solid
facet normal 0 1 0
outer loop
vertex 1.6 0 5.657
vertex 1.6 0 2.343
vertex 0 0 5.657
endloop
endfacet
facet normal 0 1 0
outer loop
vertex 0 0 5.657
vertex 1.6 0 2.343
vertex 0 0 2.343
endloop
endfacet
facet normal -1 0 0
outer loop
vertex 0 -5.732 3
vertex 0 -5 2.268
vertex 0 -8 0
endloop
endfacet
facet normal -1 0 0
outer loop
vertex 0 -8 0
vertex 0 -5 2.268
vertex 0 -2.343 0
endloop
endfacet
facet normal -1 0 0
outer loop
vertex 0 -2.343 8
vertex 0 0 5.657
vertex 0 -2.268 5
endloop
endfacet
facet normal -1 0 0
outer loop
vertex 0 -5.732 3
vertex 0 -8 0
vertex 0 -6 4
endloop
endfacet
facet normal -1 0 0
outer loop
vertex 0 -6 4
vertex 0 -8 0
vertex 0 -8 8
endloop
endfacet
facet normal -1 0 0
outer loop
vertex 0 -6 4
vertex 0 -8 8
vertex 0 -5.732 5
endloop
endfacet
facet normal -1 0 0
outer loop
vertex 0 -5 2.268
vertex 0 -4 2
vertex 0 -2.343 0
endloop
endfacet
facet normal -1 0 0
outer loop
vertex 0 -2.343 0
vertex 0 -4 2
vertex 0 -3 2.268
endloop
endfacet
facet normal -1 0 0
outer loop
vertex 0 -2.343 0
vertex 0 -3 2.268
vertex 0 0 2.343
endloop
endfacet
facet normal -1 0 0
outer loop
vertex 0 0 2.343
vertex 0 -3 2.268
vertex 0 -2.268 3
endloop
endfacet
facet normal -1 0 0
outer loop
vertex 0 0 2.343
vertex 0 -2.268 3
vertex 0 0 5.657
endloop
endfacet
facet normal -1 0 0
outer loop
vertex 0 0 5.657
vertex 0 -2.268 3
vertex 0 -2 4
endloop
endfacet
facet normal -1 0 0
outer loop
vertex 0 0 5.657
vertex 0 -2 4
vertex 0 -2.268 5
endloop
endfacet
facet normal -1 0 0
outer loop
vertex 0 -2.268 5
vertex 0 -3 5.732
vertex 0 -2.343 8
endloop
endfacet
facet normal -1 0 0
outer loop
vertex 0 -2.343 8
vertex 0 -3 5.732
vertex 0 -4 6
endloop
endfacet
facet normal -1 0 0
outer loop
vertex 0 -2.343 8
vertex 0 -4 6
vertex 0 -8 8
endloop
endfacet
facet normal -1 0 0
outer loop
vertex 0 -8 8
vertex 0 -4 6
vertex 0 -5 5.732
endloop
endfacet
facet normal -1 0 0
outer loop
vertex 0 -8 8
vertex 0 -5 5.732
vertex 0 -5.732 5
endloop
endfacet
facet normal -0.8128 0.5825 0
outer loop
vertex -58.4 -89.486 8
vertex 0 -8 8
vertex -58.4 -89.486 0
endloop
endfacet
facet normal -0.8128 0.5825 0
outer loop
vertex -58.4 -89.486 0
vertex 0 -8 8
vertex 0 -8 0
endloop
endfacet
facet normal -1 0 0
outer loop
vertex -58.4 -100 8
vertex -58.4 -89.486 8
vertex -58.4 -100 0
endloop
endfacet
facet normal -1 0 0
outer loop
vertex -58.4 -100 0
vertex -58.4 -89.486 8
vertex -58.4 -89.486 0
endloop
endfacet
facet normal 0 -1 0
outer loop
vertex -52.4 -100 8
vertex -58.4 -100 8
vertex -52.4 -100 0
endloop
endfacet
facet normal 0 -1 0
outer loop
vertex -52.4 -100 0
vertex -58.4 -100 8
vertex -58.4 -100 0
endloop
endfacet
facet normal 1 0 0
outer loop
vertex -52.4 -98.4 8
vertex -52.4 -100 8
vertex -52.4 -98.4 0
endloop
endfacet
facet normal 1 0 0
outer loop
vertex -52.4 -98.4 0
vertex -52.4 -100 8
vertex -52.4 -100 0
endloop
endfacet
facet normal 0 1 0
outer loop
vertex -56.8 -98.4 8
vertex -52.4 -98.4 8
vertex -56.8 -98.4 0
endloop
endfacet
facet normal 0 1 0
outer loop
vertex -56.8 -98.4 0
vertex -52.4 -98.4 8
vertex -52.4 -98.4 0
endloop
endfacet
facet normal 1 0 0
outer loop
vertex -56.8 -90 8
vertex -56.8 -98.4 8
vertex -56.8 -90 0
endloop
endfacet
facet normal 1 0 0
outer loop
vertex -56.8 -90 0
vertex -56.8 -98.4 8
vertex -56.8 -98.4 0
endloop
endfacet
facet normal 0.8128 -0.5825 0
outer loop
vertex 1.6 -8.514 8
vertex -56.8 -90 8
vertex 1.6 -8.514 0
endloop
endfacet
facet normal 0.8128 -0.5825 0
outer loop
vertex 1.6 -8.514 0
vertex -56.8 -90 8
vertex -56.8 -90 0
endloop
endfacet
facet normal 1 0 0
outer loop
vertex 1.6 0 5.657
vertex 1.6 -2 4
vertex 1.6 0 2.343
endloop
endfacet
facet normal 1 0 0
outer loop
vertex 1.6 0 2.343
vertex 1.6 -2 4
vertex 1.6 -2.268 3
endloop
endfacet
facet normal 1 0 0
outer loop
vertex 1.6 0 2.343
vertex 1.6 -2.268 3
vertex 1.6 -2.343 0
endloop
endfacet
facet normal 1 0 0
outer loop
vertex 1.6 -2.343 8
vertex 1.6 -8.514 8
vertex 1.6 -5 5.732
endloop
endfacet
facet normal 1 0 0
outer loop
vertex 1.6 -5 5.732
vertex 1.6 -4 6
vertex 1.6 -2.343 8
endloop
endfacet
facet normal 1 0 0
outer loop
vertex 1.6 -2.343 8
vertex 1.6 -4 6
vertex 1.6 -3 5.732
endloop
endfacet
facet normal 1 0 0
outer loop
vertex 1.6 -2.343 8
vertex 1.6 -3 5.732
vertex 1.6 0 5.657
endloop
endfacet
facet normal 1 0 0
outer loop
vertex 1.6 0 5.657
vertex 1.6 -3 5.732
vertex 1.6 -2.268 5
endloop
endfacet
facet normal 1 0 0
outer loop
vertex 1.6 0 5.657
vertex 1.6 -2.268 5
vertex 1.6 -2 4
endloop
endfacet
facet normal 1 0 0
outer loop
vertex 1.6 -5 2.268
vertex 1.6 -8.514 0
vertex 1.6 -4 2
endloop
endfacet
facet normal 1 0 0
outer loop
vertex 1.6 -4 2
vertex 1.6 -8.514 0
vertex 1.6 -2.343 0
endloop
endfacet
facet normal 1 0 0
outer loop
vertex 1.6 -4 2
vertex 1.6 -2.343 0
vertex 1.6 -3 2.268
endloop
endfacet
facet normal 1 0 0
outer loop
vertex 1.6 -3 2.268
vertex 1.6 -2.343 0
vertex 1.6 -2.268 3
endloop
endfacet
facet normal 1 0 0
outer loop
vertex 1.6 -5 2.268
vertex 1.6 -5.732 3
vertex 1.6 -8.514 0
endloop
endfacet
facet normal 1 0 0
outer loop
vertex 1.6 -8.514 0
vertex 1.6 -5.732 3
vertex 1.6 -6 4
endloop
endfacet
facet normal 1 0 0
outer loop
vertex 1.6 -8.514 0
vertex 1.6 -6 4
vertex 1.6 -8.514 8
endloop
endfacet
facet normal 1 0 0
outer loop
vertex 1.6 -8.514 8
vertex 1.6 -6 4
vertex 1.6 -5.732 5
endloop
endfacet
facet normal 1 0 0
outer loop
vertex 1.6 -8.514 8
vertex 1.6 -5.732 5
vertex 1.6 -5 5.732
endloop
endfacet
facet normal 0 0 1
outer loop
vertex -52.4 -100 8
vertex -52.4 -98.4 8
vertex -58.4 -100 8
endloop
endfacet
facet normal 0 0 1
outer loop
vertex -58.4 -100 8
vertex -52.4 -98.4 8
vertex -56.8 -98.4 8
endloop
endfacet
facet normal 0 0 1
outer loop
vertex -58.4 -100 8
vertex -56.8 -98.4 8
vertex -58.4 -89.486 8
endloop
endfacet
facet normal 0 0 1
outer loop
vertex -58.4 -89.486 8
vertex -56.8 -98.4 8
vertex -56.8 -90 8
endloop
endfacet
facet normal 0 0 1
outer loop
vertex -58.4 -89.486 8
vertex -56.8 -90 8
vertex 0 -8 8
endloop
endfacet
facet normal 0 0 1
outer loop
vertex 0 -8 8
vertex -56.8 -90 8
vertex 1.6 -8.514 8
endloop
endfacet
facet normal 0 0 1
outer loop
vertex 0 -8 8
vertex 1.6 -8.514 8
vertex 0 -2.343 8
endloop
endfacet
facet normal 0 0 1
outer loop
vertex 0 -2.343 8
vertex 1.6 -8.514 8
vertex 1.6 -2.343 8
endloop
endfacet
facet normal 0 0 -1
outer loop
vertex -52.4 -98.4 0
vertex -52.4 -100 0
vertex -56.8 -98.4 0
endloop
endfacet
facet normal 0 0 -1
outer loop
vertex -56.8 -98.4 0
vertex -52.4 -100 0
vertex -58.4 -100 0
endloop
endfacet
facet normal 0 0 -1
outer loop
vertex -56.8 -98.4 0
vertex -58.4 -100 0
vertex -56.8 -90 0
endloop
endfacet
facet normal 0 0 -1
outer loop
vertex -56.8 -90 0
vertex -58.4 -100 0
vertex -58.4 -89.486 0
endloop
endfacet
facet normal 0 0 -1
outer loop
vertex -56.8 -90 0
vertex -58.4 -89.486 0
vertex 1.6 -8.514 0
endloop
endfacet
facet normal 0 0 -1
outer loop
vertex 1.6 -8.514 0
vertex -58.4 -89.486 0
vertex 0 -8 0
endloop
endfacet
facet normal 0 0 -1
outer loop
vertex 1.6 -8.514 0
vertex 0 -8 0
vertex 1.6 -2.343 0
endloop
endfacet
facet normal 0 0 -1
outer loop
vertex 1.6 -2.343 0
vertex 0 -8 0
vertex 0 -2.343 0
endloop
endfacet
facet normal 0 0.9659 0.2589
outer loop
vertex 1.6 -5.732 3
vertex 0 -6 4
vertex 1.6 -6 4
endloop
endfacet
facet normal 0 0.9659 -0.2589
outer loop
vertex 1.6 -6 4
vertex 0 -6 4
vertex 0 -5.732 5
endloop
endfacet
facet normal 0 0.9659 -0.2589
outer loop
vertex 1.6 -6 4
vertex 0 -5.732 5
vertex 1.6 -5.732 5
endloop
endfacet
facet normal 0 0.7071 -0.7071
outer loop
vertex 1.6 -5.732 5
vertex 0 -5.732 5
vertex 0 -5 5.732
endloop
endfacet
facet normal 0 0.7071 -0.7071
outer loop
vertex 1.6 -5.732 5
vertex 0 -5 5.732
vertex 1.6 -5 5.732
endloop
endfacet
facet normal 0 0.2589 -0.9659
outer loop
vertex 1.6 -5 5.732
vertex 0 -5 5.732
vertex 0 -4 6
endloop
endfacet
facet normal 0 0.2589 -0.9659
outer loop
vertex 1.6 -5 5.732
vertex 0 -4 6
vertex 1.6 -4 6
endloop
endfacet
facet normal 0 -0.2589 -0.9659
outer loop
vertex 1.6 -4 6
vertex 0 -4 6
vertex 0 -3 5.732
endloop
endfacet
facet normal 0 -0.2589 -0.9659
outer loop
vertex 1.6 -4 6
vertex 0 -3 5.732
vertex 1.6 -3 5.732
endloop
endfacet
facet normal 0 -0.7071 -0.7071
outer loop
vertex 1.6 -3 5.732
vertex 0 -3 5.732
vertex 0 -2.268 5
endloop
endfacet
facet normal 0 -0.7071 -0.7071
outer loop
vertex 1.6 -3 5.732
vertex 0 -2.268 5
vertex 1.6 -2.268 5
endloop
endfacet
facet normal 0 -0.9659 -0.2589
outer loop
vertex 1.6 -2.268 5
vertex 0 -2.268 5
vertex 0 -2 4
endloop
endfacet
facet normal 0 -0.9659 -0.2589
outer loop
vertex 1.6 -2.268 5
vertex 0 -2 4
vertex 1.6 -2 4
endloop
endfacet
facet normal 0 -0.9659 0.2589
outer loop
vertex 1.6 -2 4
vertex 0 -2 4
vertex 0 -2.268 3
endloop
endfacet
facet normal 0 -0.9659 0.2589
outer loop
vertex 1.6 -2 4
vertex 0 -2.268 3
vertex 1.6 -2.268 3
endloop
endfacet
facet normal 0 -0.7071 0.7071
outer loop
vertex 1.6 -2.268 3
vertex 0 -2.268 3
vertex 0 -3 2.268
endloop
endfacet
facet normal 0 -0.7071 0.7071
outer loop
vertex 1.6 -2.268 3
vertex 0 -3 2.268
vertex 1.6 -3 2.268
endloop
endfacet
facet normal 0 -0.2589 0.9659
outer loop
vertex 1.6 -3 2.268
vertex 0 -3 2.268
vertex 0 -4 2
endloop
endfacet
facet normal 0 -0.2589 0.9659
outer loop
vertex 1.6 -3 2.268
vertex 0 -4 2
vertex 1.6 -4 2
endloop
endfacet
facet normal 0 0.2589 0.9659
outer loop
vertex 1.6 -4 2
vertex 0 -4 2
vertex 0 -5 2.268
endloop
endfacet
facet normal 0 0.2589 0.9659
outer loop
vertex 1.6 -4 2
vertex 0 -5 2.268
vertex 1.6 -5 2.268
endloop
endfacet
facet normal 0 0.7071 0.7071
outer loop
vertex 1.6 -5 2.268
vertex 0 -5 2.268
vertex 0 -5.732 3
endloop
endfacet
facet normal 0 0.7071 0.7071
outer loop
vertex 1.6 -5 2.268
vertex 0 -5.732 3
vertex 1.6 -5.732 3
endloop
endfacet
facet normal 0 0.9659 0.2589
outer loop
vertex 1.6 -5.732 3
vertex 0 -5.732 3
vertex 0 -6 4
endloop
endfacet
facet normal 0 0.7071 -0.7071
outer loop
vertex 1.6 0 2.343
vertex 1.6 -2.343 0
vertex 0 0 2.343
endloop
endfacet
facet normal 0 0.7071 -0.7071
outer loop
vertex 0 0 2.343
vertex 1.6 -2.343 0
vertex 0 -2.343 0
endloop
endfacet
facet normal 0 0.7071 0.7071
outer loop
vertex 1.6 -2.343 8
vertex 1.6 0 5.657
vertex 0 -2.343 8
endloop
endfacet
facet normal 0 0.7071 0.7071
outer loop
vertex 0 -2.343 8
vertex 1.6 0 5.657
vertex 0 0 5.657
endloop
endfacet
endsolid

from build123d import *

# Parameters (mm, degrees)
BOSS_EXTRUDE1_DEPTH = 8
SKETCH2_R           = 2
CUT_EXTRUDE1_DEPTH  = 117.079972433


with BuildPart() as part:
    # Sketch1 → Boss-Extrude1 (new body)
    with BuildSketch(Plane.XY):
        Polygon((0, 0), (0, -8), (-58.4, -89.485853422), (-58.4, -100), (-52.4, -100), (-52.4, -98.4), (-56.8, -98.4), (-56.8, -90), (1.6, -8.514146578), (1.6, 0), align=None)
    extrude(amount=BOSS_EXTRUDE1_DEPTH)

    # Sketch2 → Cut-Extrude1 (cut, through all)
    with BuildSketch(Plane.ZY):
        with Locations(Location((4, -4, 0), (0, 0, 270))):
            Circle(SKETCH2_R)
        Polygon((0, 0), (0, -2.343145751), (2.343145751, 0), align=None)
        Polygon((8, -2.343145751), (5.656854249, 0), (8, 0), align=None)
    extrude(amount=-CUT_EXTRUDE1_DEPTH, mode=Mode.SUBTRACT)


solid = part.part
